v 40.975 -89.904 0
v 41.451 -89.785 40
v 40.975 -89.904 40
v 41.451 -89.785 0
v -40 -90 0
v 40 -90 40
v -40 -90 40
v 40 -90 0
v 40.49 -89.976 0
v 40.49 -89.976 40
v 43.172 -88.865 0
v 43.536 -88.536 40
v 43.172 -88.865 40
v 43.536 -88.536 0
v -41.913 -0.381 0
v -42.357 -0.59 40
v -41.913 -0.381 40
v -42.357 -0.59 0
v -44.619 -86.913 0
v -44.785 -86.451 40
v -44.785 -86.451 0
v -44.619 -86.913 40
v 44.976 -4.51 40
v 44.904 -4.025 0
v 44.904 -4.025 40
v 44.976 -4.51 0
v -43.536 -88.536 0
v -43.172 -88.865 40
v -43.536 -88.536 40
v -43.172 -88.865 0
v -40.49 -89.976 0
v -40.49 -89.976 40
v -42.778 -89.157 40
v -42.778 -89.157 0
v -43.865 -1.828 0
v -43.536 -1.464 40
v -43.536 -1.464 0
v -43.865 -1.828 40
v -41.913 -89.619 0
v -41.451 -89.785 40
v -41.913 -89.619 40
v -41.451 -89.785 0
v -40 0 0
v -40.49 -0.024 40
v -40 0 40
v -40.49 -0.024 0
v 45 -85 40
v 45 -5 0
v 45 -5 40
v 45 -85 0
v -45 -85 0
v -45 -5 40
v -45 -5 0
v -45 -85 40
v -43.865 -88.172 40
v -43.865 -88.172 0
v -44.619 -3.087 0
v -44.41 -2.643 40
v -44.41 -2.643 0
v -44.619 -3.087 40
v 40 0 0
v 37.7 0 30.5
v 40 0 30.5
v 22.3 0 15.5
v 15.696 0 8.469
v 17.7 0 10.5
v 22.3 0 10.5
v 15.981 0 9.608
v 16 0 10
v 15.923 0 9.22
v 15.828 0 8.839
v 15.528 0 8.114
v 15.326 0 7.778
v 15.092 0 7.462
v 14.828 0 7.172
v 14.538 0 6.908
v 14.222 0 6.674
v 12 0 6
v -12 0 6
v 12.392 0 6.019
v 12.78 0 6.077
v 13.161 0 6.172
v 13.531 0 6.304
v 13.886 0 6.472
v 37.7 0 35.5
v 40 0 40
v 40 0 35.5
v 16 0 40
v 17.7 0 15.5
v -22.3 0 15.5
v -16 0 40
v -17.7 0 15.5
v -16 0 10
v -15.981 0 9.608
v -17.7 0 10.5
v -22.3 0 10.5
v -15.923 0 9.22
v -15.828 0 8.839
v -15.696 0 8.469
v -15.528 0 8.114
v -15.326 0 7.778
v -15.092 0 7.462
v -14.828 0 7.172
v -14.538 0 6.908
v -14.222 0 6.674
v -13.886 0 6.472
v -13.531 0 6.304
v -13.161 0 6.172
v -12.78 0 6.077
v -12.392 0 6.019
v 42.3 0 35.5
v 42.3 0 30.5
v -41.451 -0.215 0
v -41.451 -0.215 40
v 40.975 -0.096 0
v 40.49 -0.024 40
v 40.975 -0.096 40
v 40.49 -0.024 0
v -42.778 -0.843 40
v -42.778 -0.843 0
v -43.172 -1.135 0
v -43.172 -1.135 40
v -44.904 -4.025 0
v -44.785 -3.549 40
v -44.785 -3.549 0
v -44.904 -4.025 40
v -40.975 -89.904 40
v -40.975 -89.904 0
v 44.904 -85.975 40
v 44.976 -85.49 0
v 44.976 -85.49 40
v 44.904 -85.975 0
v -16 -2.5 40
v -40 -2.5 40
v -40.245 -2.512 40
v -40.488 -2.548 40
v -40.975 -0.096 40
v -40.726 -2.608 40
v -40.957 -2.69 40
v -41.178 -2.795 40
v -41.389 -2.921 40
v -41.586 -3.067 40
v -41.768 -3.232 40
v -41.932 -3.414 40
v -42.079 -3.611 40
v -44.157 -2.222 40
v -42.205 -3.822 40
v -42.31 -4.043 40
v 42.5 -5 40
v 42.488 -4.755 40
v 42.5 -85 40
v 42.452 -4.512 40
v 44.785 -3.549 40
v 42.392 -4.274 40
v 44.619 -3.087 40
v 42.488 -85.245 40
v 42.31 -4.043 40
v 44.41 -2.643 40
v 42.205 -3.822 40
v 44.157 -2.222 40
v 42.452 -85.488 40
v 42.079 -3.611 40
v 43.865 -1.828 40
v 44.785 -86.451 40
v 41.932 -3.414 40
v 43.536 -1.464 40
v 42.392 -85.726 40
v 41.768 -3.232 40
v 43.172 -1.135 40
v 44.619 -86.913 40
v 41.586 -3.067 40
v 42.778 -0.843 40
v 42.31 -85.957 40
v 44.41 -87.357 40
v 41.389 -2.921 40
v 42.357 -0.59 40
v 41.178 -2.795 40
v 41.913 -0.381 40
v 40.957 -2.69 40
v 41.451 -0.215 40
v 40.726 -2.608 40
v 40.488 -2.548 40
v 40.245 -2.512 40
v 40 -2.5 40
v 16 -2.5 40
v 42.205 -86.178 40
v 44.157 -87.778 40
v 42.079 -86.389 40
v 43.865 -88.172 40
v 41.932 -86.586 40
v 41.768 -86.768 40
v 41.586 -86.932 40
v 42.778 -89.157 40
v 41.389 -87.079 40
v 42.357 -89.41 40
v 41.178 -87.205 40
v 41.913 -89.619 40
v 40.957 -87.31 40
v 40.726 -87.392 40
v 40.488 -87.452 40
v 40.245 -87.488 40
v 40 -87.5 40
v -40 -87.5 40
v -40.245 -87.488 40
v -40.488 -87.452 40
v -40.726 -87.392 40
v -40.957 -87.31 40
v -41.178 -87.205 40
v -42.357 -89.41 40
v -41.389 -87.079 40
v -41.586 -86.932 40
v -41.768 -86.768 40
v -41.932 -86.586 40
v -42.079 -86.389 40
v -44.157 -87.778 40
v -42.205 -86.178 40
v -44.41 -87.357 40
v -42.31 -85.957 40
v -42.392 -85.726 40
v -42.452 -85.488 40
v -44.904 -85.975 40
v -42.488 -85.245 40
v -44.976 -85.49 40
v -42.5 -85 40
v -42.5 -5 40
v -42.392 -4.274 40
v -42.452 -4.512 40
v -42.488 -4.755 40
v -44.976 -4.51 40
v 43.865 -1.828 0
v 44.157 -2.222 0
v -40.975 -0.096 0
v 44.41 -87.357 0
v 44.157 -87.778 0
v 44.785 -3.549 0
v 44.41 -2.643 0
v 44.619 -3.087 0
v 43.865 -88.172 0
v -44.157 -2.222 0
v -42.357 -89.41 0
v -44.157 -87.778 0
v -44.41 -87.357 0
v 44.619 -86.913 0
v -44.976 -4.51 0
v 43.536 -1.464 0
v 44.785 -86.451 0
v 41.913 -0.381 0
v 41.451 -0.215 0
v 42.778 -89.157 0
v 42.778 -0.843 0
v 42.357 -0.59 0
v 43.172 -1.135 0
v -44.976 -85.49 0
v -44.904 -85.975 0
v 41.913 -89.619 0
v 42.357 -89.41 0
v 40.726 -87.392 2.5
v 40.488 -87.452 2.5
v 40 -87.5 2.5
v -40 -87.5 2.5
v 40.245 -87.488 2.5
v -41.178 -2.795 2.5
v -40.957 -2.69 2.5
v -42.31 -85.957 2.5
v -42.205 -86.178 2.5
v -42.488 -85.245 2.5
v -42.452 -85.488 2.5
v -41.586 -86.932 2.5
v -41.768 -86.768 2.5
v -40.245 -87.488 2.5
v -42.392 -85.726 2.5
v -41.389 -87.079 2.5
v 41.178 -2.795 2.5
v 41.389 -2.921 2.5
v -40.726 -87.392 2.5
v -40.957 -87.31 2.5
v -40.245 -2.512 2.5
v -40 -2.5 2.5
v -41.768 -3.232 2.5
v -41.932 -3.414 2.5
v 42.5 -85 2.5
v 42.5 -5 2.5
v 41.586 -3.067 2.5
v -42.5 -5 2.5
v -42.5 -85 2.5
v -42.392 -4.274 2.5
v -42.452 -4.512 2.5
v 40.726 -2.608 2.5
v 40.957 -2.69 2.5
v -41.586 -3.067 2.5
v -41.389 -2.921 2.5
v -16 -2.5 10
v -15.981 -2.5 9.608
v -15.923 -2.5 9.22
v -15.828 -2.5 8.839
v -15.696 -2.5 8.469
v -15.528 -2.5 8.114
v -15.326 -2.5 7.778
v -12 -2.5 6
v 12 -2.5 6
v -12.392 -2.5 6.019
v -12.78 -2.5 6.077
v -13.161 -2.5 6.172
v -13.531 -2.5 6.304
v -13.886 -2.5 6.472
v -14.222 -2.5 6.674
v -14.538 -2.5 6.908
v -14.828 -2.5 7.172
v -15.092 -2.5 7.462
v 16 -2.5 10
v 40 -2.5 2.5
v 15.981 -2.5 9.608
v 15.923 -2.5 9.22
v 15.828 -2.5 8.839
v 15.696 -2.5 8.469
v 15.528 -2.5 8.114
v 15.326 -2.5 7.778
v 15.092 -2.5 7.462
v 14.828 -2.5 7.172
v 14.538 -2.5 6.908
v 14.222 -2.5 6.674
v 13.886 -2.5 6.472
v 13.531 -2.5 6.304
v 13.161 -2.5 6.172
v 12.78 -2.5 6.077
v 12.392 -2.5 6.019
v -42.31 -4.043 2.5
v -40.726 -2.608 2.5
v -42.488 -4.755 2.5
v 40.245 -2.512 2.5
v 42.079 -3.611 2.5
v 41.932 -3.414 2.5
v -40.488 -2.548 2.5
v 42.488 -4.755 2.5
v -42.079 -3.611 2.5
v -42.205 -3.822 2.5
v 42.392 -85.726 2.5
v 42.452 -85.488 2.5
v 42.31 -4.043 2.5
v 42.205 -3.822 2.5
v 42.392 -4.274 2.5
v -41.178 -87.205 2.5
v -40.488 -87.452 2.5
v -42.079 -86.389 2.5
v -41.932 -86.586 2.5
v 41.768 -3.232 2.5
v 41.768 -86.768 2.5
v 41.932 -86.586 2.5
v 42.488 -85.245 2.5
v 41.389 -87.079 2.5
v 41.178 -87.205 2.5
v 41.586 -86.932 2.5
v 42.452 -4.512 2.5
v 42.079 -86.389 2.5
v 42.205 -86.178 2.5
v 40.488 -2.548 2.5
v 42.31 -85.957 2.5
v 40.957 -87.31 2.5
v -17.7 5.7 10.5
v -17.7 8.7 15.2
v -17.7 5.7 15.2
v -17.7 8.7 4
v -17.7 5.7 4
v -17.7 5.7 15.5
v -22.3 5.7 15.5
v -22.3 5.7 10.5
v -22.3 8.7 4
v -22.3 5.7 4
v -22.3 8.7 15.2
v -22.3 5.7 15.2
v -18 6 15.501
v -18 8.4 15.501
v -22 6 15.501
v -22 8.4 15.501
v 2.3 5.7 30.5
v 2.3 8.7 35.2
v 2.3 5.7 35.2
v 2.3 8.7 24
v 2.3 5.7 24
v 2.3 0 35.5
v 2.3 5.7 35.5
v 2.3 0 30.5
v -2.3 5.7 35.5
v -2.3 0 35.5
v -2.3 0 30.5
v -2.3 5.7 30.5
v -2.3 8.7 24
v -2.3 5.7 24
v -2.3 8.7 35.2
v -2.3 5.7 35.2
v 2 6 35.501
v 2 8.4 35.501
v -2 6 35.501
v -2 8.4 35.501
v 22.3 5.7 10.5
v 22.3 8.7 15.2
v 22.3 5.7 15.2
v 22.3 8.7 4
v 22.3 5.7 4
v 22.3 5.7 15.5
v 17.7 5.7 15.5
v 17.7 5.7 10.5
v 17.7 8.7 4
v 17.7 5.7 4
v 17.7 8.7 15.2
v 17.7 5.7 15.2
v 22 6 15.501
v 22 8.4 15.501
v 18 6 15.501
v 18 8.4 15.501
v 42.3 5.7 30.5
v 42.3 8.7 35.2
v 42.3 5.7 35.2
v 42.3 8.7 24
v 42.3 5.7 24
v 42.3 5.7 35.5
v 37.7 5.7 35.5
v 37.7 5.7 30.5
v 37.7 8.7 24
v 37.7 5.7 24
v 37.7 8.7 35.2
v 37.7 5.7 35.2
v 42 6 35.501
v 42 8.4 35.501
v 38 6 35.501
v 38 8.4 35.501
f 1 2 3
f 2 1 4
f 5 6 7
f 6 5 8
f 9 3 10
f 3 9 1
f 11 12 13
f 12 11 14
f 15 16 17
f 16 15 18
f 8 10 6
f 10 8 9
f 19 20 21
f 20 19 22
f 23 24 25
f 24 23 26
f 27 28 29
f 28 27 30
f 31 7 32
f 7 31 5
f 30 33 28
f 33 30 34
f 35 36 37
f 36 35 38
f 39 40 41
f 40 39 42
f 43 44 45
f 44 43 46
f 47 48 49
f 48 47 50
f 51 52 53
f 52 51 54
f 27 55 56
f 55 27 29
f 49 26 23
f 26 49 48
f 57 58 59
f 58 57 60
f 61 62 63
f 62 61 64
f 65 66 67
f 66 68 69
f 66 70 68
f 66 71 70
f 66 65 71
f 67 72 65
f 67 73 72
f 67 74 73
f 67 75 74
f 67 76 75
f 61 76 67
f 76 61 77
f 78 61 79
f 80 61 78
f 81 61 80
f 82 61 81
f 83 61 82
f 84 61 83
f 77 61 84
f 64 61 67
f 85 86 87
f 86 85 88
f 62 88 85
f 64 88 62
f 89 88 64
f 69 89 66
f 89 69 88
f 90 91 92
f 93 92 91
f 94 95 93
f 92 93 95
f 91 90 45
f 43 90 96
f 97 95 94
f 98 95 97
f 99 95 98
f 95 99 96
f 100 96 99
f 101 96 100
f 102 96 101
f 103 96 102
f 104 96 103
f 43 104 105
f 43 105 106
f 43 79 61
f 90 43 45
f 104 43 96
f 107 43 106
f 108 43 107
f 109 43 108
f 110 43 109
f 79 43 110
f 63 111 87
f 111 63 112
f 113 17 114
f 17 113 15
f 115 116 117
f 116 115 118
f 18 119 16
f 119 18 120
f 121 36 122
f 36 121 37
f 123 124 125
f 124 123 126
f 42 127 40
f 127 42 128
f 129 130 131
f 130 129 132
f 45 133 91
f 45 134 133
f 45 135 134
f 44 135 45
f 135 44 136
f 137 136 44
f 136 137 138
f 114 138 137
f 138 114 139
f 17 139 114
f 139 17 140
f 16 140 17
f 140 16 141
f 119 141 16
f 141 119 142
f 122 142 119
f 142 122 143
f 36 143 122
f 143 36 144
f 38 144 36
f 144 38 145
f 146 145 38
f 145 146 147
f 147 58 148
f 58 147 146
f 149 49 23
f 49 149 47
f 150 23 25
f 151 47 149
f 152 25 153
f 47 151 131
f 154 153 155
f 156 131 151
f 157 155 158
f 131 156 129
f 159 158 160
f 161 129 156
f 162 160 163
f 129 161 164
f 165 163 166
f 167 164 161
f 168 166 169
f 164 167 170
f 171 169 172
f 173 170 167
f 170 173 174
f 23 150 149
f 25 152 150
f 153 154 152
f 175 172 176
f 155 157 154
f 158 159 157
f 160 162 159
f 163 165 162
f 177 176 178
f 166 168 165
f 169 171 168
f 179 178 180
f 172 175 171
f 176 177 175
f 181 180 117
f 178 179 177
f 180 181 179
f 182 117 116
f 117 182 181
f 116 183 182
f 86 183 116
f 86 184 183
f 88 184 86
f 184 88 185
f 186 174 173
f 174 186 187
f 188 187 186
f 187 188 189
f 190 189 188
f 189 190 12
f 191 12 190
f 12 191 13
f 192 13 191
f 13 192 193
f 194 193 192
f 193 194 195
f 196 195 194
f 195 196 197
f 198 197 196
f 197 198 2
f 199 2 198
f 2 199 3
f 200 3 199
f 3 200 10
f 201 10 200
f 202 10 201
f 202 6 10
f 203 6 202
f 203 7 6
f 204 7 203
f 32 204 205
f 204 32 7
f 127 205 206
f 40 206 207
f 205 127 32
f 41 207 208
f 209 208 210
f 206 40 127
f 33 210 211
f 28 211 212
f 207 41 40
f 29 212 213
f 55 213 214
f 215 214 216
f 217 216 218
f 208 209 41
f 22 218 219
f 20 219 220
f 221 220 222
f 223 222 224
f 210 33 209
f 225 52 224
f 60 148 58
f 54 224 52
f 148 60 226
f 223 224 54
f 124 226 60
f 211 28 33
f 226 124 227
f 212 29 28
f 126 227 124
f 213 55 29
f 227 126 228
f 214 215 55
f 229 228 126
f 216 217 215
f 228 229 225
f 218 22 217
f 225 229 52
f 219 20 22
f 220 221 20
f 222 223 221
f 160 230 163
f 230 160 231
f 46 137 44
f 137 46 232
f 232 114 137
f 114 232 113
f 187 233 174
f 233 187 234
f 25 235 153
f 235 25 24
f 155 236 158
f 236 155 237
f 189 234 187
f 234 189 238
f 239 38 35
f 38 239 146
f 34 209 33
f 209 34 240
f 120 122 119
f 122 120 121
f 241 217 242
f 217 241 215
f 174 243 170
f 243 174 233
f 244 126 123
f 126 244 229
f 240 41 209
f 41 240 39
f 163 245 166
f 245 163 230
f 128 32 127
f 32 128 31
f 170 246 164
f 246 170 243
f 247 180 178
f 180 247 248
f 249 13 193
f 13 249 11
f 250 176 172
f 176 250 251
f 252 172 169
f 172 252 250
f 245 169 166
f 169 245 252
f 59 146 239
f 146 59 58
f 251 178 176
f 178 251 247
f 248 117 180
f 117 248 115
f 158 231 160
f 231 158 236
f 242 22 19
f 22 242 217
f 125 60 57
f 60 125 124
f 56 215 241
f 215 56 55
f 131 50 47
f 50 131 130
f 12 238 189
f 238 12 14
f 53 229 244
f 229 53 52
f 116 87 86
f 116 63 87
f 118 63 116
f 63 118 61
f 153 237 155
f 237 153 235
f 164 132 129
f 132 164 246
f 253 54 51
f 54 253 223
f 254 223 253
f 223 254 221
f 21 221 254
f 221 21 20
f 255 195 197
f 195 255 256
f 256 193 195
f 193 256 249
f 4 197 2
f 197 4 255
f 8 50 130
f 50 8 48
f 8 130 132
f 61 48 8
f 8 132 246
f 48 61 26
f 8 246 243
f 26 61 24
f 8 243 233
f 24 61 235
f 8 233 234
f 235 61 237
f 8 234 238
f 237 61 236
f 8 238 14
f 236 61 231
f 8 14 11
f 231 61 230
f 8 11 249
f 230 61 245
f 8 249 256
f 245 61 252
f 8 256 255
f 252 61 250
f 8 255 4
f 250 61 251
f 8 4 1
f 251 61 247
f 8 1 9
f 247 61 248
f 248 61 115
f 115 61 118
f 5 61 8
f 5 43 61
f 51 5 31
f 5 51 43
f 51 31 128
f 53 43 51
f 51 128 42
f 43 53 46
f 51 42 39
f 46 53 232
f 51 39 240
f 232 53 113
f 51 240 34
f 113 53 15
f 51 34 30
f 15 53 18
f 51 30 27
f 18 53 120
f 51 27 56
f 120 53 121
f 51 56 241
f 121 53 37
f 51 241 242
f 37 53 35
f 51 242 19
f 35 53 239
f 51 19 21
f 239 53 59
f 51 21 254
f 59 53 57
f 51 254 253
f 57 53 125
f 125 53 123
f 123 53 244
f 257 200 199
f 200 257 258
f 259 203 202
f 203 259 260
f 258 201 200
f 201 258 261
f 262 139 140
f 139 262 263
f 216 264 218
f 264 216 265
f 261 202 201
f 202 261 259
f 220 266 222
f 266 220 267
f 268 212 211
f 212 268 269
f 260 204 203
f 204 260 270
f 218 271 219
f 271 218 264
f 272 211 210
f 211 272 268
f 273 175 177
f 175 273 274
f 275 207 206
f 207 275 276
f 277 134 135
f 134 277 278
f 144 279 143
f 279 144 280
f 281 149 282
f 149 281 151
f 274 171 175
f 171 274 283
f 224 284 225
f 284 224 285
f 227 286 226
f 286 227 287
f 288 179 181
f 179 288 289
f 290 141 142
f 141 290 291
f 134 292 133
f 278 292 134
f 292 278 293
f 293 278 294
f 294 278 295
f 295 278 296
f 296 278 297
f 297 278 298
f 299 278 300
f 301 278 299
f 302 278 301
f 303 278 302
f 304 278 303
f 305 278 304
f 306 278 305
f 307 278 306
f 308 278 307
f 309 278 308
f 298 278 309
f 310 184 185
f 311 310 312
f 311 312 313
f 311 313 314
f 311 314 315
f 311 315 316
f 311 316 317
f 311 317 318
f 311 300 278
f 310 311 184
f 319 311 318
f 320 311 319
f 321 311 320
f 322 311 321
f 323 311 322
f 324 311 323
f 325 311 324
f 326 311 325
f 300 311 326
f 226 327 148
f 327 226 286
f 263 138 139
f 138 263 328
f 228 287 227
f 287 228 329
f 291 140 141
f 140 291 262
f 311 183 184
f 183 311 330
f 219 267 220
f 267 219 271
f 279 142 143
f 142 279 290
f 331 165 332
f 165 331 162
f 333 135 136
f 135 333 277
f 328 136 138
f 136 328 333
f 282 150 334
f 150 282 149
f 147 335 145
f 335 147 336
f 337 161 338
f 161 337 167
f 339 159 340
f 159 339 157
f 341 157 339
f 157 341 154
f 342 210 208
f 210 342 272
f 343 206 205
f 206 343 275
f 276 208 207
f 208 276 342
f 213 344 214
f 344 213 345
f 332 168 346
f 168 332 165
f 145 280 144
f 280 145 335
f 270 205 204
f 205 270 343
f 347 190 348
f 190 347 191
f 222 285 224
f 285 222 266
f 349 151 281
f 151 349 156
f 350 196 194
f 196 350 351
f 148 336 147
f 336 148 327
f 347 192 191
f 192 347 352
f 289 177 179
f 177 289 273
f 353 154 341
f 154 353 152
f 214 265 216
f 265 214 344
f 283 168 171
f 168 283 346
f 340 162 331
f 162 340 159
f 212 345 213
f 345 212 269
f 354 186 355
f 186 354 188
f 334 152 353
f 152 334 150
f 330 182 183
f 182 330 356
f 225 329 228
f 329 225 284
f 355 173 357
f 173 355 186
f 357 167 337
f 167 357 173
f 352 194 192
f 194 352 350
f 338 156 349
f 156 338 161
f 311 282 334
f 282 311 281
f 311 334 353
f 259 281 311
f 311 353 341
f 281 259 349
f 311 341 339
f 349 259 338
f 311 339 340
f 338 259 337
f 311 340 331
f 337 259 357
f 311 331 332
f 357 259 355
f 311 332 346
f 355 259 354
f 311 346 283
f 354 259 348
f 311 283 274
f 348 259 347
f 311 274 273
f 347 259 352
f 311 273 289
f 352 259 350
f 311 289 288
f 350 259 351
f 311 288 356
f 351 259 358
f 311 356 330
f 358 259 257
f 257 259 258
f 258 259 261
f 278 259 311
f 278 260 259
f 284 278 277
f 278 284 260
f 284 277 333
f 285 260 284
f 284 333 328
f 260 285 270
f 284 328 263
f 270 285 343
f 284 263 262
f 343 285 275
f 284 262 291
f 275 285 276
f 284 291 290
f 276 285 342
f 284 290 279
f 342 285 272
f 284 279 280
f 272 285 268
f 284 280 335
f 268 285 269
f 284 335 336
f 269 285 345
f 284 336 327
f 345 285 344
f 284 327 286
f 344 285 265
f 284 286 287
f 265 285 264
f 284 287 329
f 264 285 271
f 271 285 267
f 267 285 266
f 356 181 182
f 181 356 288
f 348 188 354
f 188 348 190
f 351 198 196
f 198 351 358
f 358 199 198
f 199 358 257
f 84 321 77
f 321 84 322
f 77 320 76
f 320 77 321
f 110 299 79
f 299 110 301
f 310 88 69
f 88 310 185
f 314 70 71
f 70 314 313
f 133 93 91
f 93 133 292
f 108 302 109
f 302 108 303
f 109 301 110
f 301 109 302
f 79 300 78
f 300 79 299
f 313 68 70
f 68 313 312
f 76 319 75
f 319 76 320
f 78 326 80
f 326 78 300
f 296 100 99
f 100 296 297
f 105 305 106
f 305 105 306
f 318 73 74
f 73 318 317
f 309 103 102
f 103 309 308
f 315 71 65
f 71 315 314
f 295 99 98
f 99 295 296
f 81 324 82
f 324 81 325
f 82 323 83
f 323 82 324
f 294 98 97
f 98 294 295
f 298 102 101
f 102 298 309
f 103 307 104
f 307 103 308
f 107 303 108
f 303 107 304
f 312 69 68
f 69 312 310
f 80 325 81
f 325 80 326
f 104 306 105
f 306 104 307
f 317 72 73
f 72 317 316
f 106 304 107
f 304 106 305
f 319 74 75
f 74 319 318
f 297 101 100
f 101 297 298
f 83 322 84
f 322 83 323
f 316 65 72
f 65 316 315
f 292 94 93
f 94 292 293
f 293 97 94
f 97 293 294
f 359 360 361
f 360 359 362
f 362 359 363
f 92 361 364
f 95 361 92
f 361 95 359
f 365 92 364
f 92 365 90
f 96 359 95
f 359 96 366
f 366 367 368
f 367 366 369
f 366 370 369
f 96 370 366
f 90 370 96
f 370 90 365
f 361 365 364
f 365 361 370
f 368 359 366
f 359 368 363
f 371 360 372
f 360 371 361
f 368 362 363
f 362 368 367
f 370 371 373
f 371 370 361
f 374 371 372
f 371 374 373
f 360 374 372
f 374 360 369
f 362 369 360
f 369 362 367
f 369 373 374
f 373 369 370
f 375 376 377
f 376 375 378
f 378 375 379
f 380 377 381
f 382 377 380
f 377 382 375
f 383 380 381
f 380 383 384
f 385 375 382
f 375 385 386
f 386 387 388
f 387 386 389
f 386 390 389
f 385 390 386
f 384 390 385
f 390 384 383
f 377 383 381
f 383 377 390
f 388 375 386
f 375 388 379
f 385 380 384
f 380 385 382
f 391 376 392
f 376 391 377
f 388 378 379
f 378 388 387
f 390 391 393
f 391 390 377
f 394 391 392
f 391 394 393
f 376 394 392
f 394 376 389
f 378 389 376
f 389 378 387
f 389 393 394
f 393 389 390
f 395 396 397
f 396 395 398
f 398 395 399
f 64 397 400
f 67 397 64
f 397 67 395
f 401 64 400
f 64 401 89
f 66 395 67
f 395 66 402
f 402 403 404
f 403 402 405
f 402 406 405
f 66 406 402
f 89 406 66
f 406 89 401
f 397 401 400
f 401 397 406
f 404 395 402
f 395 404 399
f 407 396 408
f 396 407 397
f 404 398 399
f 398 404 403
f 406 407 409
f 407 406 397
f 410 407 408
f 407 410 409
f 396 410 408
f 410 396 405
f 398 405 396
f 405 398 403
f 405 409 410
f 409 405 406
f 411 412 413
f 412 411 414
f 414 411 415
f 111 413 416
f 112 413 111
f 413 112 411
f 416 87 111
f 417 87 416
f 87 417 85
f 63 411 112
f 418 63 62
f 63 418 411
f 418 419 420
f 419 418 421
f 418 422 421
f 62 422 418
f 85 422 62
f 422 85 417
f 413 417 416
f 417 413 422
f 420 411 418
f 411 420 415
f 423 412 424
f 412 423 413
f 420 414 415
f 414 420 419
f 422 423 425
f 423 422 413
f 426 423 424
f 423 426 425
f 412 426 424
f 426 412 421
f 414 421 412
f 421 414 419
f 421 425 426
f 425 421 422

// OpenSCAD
// Skadis mug holder — open-front container with a handle slot down the front
// and pegs on the back. Author: John Mylchreest <jmylchreest@gmail.com>.

use <../../libraries/container/container.scad>
use <../../libraries/ikea-skadis/ikea-skadis.scad>

/* [Output] */
render_target = "container";  // [container]

/* [Container] */
container_width   = 90;
container_height  = 40;
container_depth   = 90;
wall_thickness    = 2.5;
top_rim_thickness = 3.0;
corner_radius     = 5;

/* [Side panel style — left & right walls] */
side_style       = "solid";   // [solid, hex, grid]
side_solid_base  = 15;        // solid mm at bottom (non-solid styles only)
side_solid_top   = 15;        // solid mm at top    (non-solid styles only)
side_hex_cell    = 12;
side_hex_wall    = 1.6;

/* [Handle slot — front face] */
handle_slot_width   = 32;     // X span (mug handle width budget)
handle_slot_z_from  = 6;      // Z above floor where slot starts
handle_slot_z_to    = 80;     // Z where slot ends — overshoots into the open top
                              // so the handle can slide in from above
handle_slot_corner  = 4;

/* [Pegs] */
peg_cols          = 2;
peg_rows          = 2;
peg_anchor_edge   = "center";  // "left" | "right" | "center" — back-view edges
peg_x_from_anchor = undef;     // distance from anchor edge; undef = auto for "center"
peg_z_from_bottom = 18;
peg_retainer      = false;

/* [Standoff] */
standoff_distance = 0;

/* [Quality] */
$fa = $preview ? $fa : 1;
$fs = $preview ? $fs : 0.2;
$fn = 64;

// ---- derived ----
container_origin = [-container_width / 2,
                    -standoff_distance - container_depth,
                    0];

// Same back-view → library anchor mapping as the main container model.
_lib_anchor   = peg_anchor_edge == "left"  ? "right"
              : peg_anchor_edge == "right" ? "left"
              :                              "center";
// Auto-default peg_x_from_anchor so the grid is centred on the container
// width when "center", otherwise positions the leading peg per the user.
_default_x_from_anchor = (container_width - (peg_cols - 1) * 40) / 2;
_x_from_anchor = peg_x_from_anchor == undef ? _default_x_from_anchor : peg_x_from_anchor;
leading_peg_x = peg_anchor_edge == "left"  ?  container_width / 2 - _x_from_anchor
              : peg_anchor_edge == "right" ? -container_width / 2 + _x_from_anchor
              :                               0;

function _side_layers() =
    side_style == "solid"
        ? [["solid", 0, container_height]]
        : [["solid", 0, side_solid_base],
           [side_style, side_solid_base, container_height - side_solid_top,
            [side_hex_cell, side_hex_wall, 2]],
           ["solid", container_height - side_solid_top, container_height]];

faces_spec = side_style == "solid" ? [] :
    [["left",  _side_layers()],
     ["right", _side_layers()]];

cuts_spec = [["front", "slot",
              [0, handle_slot_width, handle_slot_z_from, handle_slot_z_to,
               handle_slot_corner]]];

module mug_holder() {
    union() {
        translate(container_origin)
            container(width = container_width,
                      depth = container_depth,
                      height = container_height,
                      wall = wall_thickness,
                      corner_r = corner_radius,
                      rim_thickness = top_rim_thickness,
                      faces = faces_spec,
                      cuts = cuts_spec);

        translate([leading_peg_x, 0, peg_z_from_bottom])
            skadis_peg_grid(cols = peg_cols, rows = peg_rows,
                            anchor = _lib_anchor, vanchor = "bottom",
                            standoff = standoff_distance,
                            retainer = peg_retainer);
    }
}

mug_holder();
